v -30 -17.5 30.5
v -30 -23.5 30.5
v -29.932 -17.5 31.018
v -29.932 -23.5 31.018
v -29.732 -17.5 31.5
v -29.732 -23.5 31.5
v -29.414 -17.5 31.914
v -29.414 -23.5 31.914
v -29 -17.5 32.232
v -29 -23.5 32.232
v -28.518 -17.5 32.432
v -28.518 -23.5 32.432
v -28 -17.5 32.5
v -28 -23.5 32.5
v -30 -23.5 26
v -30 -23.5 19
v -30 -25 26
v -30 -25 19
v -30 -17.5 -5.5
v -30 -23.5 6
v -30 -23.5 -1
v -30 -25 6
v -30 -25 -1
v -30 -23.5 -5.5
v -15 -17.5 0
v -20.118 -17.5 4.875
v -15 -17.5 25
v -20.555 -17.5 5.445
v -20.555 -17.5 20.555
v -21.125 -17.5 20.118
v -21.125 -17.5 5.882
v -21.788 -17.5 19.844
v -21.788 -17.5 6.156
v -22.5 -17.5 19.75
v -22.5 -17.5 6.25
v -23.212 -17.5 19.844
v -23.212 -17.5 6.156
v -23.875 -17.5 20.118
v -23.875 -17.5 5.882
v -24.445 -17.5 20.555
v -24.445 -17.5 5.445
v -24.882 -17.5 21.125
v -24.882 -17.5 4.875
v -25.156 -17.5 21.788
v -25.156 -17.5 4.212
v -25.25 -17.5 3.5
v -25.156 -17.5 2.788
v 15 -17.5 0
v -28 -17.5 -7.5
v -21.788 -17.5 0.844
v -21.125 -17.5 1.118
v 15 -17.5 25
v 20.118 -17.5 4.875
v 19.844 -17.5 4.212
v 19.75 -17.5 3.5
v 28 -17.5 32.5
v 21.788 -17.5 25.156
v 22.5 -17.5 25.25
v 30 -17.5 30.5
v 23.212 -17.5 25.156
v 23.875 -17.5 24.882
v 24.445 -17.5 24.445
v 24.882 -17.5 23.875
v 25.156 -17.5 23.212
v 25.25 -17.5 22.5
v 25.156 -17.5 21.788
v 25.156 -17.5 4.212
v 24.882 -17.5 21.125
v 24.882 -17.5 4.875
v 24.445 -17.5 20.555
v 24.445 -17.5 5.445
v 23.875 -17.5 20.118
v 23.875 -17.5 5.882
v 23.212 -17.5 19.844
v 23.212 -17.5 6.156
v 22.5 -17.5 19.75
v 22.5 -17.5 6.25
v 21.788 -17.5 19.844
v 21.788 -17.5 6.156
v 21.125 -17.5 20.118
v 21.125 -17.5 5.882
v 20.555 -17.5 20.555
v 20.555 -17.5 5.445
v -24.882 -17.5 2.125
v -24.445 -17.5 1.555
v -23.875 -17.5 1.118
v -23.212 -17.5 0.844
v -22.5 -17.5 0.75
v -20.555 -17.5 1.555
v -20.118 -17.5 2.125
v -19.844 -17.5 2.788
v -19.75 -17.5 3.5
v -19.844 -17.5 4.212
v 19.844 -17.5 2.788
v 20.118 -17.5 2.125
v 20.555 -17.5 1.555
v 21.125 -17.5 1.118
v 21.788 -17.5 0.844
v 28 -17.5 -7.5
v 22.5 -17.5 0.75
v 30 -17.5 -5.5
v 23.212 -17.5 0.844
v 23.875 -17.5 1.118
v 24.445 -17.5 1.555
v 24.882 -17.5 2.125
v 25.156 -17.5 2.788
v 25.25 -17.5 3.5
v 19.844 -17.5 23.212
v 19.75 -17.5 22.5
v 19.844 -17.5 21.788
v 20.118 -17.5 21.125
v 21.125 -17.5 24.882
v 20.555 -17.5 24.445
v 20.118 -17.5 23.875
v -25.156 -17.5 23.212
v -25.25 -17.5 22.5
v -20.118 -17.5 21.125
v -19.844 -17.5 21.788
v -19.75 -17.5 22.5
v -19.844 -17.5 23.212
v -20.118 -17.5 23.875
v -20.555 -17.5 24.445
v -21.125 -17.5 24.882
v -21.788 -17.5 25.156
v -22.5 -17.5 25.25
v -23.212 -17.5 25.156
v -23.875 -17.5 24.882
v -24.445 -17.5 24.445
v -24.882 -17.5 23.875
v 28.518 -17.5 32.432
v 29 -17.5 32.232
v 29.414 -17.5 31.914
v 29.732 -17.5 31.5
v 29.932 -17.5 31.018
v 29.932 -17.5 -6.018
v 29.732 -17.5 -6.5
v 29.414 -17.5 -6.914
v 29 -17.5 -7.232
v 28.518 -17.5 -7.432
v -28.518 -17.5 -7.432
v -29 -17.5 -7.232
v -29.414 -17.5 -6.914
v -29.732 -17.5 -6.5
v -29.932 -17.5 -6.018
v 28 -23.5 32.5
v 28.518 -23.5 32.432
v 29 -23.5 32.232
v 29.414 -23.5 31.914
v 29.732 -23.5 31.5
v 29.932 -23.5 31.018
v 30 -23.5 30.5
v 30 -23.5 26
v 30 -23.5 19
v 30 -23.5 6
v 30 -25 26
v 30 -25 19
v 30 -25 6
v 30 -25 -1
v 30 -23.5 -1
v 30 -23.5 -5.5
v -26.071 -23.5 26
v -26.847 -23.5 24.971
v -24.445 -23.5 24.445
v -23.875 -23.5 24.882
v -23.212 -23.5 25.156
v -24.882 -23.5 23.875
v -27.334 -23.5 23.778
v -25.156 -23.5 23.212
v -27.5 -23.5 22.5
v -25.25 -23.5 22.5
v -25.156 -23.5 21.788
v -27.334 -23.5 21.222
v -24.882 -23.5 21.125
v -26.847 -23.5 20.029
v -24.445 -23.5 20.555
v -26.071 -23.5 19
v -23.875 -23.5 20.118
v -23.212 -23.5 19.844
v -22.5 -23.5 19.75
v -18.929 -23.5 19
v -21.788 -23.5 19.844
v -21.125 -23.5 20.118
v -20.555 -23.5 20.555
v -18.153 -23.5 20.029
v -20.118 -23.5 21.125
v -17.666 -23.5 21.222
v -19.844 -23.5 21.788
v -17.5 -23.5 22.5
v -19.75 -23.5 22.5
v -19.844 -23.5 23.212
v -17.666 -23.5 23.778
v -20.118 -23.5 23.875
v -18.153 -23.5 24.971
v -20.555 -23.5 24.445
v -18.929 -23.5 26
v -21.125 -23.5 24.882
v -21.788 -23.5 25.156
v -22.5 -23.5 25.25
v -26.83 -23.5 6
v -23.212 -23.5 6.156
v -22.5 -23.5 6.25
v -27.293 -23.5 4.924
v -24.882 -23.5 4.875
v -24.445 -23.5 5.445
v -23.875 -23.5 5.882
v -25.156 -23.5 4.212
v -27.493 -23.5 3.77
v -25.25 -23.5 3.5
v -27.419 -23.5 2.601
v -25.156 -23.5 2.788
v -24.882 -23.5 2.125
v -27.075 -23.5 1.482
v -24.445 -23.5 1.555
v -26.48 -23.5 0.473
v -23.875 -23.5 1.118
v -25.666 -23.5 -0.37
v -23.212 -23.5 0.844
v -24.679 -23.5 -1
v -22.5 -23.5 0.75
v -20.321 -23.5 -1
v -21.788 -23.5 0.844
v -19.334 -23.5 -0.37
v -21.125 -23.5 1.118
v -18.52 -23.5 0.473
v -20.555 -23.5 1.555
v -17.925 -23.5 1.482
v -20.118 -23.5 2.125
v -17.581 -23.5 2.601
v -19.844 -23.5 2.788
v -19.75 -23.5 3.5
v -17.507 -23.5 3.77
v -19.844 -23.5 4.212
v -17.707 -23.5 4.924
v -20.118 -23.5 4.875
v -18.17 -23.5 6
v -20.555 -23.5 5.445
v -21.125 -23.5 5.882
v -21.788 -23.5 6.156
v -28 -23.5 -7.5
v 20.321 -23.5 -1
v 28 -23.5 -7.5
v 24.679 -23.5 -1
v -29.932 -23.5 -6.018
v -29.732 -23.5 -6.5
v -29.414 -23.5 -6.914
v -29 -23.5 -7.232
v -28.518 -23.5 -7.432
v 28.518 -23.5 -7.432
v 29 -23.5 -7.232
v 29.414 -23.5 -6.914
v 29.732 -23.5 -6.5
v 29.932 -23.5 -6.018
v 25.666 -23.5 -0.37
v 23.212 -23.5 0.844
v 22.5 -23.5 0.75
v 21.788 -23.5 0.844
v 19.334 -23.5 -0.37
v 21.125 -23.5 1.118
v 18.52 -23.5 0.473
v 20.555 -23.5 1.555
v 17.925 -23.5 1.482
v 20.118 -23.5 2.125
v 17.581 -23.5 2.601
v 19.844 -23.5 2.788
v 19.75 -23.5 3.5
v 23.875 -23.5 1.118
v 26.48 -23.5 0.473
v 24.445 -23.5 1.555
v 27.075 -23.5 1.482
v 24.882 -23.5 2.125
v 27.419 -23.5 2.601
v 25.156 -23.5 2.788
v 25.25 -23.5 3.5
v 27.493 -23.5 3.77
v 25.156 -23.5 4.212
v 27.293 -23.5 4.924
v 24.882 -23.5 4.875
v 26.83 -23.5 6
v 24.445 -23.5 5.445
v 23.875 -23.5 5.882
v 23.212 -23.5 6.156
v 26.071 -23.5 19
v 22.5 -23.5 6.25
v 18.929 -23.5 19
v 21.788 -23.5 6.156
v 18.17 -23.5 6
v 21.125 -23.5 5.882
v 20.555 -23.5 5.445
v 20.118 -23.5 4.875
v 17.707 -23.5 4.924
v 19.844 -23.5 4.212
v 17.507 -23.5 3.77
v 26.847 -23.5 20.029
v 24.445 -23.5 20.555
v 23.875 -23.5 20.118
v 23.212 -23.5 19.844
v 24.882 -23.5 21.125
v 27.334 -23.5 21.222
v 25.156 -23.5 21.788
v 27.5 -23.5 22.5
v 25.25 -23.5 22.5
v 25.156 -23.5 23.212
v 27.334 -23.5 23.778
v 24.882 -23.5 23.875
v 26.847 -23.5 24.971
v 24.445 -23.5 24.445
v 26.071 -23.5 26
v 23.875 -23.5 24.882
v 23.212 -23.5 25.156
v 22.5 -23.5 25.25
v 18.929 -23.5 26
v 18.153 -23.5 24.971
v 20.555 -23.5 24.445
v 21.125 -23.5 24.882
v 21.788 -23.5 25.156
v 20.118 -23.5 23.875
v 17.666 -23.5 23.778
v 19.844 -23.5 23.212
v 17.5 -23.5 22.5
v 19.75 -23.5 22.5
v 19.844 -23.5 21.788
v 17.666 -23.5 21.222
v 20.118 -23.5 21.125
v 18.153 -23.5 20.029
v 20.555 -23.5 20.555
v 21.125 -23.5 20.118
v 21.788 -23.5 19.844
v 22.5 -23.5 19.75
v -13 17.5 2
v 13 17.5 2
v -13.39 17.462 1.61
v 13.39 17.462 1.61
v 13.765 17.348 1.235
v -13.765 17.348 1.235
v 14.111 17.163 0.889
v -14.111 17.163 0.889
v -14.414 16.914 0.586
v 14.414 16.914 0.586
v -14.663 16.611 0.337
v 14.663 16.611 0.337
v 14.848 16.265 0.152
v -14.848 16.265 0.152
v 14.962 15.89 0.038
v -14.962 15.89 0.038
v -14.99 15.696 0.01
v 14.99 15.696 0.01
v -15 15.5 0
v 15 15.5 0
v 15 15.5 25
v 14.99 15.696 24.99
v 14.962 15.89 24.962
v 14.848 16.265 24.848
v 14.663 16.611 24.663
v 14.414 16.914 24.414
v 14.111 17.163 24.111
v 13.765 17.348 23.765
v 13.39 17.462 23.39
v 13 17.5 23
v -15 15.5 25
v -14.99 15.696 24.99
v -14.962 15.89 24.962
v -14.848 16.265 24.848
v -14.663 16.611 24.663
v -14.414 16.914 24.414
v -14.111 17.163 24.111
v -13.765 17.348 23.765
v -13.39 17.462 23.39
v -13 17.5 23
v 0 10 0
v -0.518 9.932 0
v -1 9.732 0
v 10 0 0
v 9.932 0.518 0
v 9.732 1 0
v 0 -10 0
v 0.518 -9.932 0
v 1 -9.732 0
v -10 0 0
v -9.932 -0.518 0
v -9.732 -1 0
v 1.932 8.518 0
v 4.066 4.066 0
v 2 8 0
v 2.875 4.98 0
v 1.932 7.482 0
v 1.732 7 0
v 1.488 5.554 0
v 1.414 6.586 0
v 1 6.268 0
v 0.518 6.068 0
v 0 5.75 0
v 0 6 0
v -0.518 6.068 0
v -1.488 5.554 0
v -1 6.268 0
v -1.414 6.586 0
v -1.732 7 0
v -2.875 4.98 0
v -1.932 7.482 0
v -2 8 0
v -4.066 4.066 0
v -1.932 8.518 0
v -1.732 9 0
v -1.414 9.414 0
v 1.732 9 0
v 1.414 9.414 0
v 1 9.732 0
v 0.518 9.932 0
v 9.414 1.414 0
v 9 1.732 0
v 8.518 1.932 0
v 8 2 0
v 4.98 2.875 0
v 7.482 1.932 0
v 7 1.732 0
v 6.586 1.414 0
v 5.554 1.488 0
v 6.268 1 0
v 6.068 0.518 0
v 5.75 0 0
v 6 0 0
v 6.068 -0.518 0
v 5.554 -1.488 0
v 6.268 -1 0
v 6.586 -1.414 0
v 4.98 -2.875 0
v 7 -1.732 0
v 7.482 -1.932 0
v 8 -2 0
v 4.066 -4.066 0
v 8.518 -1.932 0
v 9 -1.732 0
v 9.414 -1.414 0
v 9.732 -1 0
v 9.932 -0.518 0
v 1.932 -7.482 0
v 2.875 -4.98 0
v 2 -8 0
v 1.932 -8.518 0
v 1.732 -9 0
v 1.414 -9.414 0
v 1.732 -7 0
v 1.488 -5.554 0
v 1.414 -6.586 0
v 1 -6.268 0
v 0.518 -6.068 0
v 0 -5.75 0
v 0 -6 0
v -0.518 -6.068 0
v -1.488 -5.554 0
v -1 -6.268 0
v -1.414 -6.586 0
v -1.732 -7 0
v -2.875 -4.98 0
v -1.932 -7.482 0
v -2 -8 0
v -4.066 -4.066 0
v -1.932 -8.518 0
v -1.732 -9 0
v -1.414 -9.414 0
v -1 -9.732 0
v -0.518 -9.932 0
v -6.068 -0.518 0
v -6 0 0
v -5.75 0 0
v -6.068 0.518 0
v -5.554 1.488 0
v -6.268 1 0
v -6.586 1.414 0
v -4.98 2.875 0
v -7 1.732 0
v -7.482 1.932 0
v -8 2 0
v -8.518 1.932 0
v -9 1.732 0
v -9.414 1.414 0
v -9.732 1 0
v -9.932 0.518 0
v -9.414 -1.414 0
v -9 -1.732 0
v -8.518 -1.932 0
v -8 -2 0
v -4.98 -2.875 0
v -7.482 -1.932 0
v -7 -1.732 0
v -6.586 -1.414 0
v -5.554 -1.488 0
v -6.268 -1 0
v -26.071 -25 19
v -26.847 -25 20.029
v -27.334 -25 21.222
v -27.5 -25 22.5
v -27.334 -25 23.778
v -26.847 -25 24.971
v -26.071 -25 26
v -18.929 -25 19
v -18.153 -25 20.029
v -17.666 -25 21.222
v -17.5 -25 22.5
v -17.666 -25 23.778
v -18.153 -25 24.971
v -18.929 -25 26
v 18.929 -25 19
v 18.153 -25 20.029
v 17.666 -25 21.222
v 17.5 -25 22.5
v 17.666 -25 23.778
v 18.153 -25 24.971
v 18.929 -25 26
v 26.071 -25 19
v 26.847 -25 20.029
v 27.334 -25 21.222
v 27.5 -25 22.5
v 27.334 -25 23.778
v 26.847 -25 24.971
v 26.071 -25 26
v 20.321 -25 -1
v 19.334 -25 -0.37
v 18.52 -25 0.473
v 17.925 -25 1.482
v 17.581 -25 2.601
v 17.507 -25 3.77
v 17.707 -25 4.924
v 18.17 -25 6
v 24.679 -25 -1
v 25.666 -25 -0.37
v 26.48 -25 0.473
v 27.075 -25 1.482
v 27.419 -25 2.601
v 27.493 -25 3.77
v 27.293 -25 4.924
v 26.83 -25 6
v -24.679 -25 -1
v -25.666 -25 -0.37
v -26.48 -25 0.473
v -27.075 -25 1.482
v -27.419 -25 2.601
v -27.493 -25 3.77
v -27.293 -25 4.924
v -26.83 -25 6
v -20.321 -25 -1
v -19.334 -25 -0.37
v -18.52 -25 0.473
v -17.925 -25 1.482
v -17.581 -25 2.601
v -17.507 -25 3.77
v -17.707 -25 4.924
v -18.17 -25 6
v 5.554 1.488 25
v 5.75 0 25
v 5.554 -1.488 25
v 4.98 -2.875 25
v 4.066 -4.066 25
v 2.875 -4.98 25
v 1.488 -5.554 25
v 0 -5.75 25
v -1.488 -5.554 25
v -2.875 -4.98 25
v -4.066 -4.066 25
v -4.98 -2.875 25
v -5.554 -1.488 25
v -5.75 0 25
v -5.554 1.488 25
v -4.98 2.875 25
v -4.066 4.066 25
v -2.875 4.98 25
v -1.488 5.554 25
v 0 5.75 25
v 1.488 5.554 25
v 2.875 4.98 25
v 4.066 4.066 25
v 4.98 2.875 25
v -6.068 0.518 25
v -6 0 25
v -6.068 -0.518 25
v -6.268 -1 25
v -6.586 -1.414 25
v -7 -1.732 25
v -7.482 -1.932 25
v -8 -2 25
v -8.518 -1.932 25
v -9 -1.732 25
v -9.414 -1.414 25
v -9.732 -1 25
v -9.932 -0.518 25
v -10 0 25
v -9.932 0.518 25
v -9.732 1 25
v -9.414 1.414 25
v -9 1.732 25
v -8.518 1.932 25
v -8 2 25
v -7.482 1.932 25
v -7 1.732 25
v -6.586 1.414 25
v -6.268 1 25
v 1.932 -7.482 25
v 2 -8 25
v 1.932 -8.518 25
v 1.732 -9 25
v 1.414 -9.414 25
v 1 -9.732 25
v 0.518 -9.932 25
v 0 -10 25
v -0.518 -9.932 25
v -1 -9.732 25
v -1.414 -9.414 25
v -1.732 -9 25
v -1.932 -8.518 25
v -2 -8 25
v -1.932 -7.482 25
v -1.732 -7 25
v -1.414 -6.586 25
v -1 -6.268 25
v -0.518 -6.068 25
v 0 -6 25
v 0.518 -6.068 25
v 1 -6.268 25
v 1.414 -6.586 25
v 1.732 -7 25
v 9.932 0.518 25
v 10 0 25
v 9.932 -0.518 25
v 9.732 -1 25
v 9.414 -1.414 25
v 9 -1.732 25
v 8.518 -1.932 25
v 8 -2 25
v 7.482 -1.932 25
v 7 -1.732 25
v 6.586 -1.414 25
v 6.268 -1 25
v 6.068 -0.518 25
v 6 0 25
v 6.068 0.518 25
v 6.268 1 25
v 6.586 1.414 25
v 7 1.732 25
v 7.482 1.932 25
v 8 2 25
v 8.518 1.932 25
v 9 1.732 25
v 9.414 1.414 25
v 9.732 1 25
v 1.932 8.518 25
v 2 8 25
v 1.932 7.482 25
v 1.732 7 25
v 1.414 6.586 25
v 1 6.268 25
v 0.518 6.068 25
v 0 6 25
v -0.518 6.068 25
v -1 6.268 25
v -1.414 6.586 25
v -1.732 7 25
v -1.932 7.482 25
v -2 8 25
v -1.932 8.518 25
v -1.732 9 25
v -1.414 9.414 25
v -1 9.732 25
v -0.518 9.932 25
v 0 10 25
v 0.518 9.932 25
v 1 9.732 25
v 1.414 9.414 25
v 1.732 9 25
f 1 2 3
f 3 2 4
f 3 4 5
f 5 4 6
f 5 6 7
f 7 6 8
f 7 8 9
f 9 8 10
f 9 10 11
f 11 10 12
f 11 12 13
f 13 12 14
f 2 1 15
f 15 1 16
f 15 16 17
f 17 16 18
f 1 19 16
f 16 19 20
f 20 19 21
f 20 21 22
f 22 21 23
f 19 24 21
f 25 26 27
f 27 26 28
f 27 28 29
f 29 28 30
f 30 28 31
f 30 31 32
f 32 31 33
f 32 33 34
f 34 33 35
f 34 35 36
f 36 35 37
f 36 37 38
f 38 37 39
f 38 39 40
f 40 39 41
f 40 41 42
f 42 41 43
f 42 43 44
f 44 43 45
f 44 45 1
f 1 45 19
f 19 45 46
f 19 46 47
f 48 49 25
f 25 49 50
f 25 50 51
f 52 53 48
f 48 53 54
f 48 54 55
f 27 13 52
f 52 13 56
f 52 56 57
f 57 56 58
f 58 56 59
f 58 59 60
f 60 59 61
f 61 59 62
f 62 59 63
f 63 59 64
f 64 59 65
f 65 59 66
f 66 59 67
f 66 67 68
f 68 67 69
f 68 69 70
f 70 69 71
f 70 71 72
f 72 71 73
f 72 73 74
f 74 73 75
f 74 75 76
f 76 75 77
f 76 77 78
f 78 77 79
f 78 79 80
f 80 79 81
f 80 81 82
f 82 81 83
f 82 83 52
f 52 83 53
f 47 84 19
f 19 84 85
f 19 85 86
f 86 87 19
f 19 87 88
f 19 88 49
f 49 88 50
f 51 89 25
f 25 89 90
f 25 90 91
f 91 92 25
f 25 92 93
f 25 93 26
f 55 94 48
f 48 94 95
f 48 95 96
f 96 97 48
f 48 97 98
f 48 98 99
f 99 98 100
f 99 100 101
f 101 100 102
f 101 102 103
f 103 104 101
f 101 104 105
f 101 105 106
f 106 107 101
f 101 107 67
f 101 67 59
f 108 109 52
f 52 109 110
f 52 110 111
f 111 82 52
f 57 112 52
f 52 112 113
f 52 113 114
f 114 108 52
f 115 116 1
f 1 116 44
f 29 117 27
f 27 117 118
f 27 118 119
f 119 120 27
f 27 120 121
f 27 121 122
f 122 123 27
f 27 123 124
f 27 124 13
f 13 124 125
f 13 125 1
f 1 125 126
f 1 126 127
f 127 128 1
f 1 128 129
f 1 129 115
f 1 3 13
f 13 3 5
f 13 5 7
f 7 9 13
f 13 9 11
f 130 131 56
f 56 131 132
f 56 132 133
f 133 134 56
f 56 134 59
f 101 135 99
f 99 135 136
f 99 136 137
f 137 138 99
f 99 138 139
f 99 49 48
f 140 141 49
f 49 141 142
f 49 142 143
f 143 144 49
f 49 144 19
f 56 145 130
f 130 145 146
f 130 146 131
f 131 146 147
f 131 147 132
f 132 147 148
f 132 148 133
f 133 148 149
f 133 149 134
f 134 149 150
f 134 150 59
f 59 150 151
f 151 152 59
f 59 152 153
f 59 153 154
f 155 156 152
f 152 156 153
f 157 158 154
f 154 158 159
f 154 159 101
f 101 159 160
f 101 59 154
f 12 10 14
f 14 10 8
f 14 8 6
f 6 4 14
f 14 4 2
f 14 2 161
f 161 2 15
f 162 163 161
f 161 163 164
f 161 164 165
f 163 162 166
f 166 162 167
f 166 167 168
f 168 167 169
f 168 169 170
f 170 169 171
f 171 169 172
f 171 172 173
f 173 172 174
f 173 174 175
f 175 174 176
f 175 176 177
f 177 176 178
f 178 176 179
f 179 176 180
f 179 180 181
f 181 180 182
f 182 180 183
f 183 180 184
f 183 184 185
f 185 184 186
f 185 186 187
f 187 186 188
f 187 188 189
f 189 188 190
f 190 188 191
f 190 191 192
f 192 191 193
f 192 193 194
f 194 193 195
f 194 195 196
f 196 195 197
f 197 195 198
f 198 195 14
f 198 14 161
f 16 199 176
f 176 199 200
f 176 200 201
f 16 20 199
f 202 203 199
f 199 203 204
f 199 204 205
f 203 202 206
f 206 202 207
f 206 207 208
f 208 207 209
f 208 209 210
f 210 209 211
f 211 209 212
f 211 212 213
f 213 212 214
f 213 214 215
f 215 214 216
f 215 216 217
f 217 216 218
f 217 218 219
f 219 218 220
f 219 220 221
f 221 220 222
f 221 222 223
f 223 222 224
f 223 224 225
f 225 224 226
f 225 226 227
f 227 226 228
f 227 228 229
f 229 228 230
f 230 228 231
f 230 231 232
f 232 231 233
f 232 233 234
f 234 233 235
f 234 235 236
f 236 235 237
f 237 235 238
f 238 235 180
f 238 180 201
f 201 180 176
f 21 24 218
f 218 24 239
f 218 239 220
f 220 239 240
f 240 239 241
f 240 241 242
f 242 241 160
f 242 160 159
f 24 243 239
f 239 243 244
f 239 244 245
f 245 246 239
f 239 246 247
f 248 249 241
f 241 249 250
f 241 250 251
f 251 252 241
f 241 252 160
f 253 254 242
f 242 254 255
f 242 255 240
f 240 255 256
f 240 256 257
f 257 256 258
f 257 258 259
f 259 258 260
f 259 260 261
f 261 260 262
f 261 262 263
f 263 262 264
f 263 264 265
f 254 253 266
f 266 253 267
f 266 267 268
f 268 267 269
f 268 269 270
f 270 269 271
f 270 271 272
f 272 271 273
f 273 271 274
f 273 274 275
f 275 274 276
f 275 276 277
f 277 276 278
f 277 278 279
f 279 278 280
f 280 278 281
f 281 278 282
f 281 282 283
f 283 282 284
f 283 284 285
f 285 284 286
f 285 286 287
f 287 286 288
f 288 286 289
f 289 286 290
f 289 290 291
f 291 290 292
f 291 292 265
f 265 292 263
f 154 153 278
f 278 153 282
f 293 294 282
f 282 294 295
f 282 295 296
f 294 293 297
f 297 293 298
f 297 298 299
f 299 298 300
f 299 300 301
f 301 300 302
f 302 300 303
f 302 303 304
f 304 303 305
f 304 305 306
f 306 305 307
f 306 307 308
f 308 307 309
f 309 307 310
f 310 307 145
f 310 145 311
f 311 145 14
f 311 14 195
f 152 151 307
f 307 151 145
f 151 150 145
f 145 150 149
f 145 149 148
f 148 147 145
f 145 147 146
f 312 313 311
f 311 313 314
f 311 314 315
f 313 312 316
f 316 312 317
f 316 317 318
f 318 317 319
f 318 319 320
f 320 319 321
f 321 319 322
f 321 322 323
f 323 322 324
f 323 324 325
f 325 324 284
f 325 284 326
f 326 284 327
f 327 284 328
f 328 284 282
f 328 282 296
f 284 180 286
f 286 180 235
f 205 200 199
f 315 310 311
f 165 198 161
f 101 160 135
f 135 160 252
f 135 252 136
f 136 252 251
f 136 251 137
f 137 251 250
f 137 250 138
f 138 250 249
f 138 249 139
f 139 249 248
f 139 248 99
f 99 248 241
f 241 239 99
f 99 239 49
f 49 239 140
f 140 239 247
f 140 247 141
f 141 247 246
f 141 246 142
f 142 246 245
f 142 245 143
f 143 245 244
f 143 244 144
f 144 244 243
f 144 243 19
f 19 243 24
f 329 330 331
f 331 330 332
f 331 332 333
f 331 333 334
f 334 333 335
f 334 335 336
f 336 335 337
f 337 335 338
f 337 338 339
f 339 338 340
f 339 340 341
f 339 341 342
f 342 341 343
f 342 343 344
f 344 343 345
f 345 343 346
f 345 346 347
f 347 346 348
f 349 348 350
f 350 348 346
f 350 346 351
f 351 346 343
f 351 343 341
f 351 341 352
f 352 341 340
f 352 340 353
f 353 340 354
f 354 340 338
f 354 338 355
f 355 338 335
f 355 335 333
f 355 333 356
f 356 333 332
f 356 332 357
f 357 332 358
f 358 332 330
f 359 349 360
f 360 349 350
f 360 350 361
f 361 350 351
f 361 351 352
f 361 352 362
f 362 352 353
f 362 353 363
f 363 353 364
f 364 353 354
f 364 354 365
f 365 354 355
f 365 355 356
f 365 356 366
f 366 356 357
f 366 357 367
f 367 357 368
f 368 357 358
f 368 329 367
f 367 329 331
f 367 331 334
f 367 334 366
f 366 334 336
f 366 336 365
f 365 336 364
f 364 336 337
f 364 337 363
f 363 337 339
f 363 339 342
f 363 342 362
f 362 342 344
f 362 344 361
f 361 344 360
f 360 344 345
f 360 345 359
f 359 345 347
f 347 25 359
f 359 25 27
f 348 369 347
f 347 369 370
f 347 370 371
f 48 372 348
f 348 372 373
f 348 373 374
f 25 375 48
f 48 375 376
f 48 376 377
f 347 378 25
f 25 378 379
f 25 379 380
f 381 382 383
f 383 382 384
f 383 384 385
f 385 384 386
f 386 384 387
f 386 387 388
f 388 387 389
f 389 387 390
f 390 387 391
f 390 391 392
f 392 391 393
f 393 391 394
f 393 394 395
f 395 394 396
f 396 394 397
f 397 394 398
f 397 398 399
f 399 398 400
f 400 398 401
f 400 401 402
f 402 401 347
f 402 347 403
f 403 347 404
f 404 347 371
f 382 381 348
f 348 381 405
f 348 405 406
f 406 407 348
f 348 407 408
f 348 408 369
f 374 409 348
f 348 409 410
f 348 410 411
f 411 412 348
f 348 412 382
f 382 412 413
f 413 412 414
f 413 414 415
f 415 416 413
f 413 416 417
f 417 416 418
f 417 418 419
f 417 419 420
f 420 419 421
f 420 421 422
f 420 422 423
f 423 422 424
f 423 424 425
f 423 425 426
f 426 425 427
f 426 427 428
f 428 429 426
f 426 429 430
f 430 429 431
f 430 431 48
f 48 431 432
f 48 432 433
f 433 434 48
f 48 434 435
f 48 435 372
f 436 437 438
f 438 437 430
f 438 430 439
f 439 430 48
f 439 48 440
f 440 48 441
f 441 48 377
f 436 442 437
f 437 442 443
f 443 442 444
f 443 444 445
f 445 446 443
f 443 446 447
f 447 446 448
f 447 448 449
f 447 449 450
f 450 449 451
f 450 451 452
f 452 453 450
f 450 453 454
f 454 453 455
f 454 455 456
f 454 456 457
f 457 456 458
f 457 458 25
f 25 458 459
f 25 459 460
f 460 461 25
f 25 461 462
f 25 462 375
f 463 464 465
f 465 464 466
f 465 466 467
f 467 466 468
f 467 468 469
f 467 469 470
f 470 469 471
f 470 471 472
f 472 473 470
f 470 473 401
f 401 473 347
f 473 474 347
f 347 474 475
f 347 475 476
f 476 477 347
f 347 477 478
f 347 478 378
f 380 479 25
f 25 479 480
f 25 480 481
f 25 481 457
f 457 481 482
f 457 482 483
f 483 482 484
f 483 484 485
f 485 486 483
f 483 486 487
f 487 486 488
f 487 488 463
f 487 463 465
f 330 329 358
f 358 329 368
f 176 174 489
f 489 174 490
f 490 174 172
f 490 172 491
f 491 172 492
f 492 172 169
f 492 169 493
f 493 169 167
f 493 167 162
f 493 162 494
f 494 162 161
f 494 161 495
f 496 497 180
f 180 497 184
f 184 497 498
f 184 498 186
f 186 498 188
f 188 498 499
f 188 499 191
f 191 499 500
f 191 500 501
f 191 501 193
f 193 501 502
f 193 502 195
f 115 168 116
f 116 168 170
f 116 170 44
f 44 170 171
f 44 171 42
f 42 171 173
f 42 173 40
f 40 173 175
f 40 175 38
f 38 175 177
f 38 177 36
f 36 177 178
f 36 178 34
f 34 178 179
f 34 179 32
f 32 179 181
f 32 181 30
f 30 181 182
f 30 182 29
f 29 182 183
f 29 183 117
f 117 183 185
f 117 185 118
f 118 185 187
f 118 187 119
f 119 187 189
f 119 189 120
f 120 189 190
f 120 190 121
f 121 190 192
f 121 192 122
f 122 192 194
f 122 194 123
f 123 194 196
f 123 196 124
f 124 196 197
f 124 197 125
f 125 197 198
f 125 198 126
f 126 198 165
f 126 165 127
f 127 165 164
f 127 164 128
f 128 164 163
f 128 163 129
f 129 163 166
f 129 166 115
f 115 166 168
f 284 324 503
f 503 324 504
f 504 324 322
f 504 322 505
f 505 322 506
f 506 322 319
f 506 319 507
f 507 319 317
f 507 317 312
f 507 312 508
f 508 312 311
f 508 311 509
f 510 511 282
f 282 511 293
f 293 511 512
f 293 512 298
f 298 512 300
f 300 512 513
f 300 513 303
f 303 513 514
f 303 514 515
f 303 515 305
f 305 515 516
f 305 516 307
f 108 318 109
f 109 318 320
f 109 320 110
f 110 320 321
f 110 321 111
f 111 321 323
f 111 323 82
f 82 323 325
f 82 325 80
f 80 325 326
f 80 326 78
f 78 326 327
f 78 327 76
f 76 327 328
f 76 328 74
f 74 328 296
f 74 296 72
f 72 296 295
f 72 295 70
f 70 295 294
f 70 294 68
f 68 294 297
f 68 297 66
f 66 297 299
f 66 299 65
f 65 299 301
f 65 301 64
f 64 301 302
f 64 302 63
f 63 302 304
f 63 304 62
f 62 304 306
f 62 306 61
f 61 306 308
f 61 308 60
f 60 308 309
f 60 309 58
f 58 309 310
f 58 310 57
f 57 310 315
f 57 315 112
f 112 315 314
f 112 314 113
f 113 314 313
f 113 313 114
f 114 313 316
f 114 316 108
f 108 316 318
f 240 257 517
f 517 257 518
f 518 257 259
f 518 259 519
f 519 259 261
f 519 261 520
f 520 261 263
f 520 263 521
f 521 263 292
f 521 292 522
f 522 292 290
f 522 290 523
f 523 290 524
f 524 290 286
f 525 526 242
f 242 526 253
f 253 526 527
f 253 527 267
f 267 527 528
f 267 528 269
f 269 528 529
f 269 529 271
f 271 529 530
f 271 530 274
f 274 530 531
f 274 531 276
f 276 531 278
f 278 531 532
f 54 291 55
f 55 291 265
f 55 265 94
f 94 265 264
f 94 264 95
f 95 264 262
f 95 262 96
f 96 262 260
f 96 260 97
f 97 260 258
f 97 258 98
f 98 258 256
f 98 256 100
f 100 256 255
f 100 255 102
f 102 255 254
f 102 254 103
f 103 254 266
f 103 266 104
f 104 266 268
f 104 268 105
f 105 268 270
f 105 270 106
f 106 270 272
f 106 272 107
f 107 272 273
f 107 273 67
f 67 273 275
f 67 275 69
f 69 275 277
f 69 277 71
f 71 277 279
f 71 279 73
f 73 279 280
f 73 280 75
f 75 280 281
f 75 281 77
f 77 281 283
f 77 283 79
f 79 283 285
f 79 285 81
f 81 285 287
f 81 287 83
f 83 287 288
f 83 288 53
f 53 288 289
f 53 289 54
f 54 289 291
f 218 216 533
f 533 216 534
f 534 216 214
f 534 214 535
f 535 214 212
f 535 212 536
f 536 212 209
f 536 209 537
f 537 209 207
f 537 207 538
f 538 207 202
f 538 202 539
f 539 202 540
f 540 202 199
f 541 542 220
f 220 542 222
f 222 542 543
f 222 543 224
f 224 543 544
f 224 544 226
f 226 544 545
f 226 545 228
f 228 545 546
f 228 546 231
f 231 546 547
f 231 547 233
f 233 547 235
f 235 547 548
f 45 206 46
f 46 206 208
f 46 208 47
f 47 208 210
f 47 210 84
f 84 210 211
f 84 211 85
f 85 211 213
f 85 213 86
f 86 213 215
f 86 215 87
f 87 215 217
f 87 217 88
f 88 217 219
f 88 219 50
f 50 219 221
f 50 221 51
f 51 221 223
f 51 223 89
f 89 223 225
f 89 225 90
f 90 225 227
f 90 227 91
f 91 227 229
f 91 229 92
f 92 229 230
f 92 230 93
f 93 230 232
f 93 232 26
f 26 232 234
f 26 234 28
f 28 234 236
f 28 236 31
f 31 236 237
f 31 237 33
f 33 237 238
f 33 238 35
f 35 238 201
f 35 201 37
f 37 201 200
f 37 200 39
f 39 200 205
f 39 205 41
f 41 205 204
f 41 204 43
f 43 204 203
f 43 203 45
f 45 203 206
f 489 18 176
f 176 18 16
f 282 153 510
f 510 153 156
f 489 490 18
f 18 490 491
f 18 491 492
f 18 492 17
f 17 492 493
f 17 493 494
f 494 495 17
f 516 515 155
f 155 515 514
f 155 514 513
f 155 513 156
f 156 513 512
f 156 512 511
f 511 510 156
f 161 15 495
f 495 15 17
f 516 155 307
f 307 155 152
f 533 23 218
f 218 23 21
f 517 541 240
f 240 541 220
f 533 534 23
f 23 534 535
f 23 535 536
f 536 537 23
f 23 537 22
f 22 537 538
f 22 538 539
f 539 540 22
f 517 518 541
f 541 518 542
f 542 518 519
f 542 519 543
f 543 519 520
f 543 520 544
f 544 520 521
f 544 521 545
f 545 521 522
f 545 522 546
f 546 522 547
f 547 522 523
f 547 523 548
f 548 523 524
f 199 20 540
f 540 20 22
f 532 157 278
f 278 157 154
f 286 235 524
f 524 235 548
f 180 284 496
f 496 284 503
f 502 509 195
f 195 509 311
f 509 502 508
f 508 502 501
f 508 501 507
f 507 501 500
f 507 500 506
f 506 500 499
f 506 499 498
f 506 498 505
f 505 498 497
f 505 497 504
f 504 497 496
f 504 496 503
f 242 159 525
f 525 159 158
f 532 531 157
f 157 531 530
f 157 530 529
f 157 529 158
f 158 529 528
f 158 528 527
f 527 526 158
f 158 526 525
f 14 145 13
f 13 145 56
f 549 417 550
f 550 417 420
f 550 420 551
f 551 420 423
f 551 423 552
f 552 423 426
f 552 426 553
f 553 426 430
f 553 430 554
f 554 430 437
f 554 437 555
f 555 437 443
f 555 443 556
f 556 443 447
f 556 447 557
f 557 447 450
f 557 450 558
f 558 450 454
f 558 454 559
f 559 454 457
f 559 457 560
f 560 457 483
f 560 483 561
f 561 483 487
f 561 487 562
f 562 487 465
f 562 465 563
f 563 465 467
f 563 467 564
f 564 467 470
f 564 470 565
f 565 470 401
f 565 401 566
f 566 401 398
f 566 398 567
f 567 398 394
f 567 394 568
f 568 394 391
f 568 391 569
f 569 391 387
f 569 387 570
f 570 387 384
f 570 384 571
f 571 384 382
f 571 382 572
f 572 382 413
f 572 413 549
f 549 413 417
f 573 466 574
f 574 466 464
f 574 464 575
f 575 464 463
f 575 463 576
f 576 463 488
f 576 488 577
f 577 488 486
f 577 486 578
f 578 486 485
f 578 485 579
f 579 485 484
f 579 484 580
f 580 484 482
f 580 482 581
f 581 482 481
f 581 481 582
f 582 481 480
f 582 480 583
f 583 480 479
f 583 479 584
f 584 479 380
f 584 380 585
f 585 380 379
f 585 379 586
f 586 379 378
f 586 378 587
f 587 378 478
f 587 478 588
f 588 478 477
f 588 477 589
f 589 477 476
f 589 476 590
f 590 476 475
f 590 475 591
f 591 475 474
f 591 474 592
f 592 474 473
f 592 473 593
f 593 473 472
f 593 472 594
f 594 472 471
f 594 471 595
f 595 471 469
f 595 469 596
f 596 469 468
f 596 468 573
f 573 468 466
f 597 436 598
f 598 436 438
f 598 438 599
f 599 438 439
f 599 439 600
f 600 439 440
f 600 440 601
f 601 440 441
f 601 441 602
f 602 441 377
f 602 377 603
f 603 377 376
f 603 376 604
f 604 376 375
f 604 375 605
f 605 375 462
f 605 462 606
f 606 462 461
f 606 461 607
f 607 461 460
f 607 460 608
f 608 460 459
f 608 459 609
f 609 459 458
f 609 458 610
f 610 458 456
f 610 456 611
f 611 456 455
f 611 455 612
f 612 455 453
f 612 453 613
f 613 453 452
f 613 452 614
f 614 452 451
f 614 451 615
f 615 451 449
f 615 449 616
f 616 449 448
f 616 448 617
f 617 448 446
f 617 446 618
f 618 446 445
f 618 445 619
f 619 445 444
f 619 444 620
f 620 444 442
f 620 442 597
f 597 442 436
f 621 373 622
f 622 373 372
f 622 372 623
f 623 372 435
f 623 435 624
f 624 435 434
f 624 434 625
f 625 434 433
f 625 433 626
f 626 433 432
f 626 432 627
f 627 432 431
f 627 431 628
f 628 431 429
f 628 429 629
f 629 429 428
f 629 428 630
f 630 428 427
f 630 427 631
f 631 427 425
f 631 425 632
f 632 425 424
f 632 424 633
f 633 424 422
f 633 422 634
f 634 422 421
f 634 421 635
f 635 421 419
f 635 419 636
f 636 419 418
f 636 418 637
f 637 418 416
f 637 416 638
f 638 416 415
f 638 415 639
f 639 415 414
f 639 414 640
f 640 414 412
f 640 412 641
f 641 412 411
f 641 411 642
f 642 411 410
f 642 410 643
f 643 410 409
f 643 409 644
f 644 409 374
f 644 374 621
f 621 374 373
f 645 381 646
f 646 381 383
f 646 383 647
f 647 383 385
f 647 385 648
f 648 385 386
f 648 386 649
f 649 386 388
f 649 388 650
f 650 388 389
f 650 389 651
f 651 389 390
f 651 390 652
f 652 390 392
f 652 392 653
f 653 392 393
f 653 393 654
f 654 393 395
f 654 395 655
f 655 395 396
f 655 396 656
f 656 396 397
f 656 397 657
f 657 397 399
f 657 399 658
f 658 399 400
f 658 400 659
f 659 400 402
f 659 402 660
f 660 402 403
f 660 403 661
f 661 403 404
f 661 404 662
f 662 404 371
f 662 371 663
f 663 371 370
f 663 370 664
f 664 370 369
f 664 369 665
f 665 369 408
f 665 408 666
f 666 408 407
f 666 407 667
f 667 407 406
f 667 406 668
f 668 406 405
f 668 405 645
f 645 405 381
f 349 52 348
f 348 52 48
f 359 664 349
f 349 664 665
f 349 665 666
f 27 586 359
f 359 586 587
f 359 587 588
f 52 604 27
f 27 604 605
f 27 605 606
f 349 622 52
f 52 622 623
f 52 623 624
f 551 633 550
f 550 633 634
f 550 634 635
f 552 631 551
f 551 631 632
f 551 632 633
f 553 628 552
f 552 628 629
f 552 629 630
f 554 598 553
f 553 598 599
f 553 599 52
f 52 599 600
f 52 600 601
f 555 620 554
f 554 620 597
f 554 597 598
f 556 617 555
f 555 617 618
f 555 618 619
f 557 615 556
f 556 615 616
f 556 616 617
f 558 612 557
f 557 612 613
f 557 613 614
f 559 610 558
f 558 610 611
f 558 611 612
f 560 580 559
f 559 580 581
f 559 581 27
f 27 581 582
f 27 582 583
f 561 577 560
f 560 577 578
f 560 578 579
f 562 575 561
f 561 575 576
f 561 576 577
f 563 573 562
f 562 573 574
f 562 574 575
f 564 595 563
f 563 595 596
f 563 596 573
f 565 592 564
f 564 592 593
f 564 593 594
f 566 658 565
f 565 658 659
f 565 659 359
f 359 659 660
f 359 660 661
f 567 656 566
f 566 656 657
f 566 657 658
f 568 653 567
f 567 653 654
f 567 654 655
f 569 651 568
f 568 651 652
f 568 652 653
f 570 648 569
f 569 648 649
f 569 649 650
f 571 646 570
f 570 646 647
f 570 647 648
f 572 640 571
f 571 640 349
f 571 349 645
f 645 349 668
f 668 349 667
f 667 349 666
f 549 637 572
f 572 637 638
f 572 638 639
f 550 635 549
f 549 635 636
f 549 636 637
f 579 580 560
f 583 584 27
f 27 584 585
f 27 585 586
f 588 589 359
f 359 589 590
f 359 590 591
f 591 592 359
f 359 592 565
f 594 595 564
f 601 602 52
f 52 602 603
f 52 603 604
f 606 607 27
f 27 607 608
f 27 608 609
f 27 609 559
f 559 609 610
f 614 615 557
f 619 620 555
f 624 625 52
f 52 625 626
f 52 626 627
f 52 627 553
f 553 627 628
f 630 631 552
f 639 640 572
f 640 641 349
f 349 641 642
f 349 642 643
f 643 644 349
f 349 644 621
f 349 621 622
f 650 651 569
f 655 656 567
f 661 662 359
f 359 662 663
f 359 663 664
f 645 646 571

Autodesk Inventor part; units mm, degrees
ref_plane "YZ Plane" through (0, 0, 0) normal (1, 0, 0) x (0, 1, 0)
ref_plane "XZ Plane" through (0, 0, 0) normal (0, 1, 0) x (-1, 0, 0)
ref_plane "XY Plane" through (0, 0, 0) normal (0, 0, 1) x (1, 0, 0)
sketch "Sketch1" plane through (0, 0, 0) normal (0, 0, 1) x (1, 0, 0)
  circle A0 centre (0, 0) radius 5.75
  circle A1 centre (0, 8) radius 2
  circle A2 centre (8, 0) radius 2
  circle A3 centre (0, -8) radius 2
  circle A4 centre (-8, 0) radius 2
  line L0 (-15, 17.5) -> (15, 17.5)
  line L1 (15, 17.5) -> (15, -17.5)
  line L2 (15, -17.5) -> (-15, -17.5)
  line L3 (-15, -17.5) -> (-15, 17.5)
  line L4 (-15, 17.5) -> (15, -17.5) construction
  line L5 (15, 17.5) -> (-15, -17.5) construction
  dimension "d0" = 11.5
  dimension "d2" = 4
  dimension "d3" = 4
  dimension "d4" = 4
  dimension "d5" = 4
  dimension "d6" = 30
  dimension "d7" = 35
extrude "Extrusion1" add sketch "Sketch1" along normal blind 25
sketch "Sketch2" plane through (-15, -17.5, 0) normal (0, -1, 0) x (1, 0, 0)
  line L0 (0, 0) -> (0, 25) projected
  line L1 (30, 0) -> (0, 0) projected
  line L2 (0, 25) -> (30, 0)
  line L3 (-15, 32.5) -> (45, 32.5)
  line L4 (45, 32.5) -> (45, -7.5)
  line L5 (45, -7.5) -> (-15, -7.5)
  line L6 (-15, -7.5) -> (-15, 32.5)
  line L7 (-15, 32.5) -> (45, -7.5) construction
  line L8 (45, 32.5) -> (-15, -7.5) construction
  point P0 (15, 0)
  point P1 (15, 12.5)
  dimension "d10" = 60
  dimension "d11" = 40
extrude "Extrusion2" add sketch "Sketch2" along normal blind 6 contours L0 L2 L1 | L3 L4 L5 L6
sketch "Sketch3" plane through (-15, -23.5, 0) normal (0, -1, 0) x (1, 0, 0)
  line L0 (-15, -7.5) -> (-15, 32.5) projected
  line L1 (45, 32.5) -> (45, -7.5) projected
  line L2 (-15, 26) -> (45, 26)
  line L3 (-15, 19) -> (45, 19)
  line L4 (-15, 6) -> (45, 6)
  line L5 (-15, -1) -> (45, -1)
  line L6 (45, 26) -> (45, 19)
  line L7 (45, 6) -> (45, -1)
  line L8 (-15, -1) -> (-15, 6)
  line L9 (-15, 19) -> (-15, 26)
  point P0 (15, 0)
extrude "Extrusion3" add sketch "Sketch3" along normal blind 1.5 contours L0 L4 L1 L5 | L0 L2 L1 L3
sketch "Sketch4" plane through (-15, -25, 0) normal (0, -1, 0) x (1, 0, 0)
  line L0 (-15, 26) -> (45, 26) projected
  line L1 (45, 26) -> (30, 19)
  line L2 (-15, 19) -> (45, 19) projected
  line L3 (30, 0) -> (30, 25) projected
  line L4 (30, 13) -> (5, 13)
  line L5 (5, 0) -> (5, 25) projected
  line L6 (45, -7.5) -> (-15, -7.5) projected
  line L7 (15, -7.5) -> (15, 32.5)
  line L8 (45, 32.5) -> (-15, 32.5) projected
  point P0 (15, 0)
  point P1 (37.5, 22.5)
  point P2 (37.5, 3.5)
  point P3 (-7.5, 22.5)
  point P4 (-7.5, 3.5)
hole "Hole1" at (22.5, -25, 22.5) at (22.5, -25, 3.5) at (-22.5, -25, 22.5) at (-22.5, -25, 3.5) direction (0, 1, 0) diameter 5.5 end through all counterbore diameter 10 counterbore depth 1.5
fillet "Fillet1" radius 2 8 edges at (15, 17.5, 12.5) (0, 17.5, 25) (-15, 17.5, 12.5) (0, 17.5, 0) (-30, -20.5, -7.5) (30, -20.5, -7.5) (30, -20.5, 32.5) (-30, -20.5, 32.5)
properties part number "CarroZ - EixoZ"
